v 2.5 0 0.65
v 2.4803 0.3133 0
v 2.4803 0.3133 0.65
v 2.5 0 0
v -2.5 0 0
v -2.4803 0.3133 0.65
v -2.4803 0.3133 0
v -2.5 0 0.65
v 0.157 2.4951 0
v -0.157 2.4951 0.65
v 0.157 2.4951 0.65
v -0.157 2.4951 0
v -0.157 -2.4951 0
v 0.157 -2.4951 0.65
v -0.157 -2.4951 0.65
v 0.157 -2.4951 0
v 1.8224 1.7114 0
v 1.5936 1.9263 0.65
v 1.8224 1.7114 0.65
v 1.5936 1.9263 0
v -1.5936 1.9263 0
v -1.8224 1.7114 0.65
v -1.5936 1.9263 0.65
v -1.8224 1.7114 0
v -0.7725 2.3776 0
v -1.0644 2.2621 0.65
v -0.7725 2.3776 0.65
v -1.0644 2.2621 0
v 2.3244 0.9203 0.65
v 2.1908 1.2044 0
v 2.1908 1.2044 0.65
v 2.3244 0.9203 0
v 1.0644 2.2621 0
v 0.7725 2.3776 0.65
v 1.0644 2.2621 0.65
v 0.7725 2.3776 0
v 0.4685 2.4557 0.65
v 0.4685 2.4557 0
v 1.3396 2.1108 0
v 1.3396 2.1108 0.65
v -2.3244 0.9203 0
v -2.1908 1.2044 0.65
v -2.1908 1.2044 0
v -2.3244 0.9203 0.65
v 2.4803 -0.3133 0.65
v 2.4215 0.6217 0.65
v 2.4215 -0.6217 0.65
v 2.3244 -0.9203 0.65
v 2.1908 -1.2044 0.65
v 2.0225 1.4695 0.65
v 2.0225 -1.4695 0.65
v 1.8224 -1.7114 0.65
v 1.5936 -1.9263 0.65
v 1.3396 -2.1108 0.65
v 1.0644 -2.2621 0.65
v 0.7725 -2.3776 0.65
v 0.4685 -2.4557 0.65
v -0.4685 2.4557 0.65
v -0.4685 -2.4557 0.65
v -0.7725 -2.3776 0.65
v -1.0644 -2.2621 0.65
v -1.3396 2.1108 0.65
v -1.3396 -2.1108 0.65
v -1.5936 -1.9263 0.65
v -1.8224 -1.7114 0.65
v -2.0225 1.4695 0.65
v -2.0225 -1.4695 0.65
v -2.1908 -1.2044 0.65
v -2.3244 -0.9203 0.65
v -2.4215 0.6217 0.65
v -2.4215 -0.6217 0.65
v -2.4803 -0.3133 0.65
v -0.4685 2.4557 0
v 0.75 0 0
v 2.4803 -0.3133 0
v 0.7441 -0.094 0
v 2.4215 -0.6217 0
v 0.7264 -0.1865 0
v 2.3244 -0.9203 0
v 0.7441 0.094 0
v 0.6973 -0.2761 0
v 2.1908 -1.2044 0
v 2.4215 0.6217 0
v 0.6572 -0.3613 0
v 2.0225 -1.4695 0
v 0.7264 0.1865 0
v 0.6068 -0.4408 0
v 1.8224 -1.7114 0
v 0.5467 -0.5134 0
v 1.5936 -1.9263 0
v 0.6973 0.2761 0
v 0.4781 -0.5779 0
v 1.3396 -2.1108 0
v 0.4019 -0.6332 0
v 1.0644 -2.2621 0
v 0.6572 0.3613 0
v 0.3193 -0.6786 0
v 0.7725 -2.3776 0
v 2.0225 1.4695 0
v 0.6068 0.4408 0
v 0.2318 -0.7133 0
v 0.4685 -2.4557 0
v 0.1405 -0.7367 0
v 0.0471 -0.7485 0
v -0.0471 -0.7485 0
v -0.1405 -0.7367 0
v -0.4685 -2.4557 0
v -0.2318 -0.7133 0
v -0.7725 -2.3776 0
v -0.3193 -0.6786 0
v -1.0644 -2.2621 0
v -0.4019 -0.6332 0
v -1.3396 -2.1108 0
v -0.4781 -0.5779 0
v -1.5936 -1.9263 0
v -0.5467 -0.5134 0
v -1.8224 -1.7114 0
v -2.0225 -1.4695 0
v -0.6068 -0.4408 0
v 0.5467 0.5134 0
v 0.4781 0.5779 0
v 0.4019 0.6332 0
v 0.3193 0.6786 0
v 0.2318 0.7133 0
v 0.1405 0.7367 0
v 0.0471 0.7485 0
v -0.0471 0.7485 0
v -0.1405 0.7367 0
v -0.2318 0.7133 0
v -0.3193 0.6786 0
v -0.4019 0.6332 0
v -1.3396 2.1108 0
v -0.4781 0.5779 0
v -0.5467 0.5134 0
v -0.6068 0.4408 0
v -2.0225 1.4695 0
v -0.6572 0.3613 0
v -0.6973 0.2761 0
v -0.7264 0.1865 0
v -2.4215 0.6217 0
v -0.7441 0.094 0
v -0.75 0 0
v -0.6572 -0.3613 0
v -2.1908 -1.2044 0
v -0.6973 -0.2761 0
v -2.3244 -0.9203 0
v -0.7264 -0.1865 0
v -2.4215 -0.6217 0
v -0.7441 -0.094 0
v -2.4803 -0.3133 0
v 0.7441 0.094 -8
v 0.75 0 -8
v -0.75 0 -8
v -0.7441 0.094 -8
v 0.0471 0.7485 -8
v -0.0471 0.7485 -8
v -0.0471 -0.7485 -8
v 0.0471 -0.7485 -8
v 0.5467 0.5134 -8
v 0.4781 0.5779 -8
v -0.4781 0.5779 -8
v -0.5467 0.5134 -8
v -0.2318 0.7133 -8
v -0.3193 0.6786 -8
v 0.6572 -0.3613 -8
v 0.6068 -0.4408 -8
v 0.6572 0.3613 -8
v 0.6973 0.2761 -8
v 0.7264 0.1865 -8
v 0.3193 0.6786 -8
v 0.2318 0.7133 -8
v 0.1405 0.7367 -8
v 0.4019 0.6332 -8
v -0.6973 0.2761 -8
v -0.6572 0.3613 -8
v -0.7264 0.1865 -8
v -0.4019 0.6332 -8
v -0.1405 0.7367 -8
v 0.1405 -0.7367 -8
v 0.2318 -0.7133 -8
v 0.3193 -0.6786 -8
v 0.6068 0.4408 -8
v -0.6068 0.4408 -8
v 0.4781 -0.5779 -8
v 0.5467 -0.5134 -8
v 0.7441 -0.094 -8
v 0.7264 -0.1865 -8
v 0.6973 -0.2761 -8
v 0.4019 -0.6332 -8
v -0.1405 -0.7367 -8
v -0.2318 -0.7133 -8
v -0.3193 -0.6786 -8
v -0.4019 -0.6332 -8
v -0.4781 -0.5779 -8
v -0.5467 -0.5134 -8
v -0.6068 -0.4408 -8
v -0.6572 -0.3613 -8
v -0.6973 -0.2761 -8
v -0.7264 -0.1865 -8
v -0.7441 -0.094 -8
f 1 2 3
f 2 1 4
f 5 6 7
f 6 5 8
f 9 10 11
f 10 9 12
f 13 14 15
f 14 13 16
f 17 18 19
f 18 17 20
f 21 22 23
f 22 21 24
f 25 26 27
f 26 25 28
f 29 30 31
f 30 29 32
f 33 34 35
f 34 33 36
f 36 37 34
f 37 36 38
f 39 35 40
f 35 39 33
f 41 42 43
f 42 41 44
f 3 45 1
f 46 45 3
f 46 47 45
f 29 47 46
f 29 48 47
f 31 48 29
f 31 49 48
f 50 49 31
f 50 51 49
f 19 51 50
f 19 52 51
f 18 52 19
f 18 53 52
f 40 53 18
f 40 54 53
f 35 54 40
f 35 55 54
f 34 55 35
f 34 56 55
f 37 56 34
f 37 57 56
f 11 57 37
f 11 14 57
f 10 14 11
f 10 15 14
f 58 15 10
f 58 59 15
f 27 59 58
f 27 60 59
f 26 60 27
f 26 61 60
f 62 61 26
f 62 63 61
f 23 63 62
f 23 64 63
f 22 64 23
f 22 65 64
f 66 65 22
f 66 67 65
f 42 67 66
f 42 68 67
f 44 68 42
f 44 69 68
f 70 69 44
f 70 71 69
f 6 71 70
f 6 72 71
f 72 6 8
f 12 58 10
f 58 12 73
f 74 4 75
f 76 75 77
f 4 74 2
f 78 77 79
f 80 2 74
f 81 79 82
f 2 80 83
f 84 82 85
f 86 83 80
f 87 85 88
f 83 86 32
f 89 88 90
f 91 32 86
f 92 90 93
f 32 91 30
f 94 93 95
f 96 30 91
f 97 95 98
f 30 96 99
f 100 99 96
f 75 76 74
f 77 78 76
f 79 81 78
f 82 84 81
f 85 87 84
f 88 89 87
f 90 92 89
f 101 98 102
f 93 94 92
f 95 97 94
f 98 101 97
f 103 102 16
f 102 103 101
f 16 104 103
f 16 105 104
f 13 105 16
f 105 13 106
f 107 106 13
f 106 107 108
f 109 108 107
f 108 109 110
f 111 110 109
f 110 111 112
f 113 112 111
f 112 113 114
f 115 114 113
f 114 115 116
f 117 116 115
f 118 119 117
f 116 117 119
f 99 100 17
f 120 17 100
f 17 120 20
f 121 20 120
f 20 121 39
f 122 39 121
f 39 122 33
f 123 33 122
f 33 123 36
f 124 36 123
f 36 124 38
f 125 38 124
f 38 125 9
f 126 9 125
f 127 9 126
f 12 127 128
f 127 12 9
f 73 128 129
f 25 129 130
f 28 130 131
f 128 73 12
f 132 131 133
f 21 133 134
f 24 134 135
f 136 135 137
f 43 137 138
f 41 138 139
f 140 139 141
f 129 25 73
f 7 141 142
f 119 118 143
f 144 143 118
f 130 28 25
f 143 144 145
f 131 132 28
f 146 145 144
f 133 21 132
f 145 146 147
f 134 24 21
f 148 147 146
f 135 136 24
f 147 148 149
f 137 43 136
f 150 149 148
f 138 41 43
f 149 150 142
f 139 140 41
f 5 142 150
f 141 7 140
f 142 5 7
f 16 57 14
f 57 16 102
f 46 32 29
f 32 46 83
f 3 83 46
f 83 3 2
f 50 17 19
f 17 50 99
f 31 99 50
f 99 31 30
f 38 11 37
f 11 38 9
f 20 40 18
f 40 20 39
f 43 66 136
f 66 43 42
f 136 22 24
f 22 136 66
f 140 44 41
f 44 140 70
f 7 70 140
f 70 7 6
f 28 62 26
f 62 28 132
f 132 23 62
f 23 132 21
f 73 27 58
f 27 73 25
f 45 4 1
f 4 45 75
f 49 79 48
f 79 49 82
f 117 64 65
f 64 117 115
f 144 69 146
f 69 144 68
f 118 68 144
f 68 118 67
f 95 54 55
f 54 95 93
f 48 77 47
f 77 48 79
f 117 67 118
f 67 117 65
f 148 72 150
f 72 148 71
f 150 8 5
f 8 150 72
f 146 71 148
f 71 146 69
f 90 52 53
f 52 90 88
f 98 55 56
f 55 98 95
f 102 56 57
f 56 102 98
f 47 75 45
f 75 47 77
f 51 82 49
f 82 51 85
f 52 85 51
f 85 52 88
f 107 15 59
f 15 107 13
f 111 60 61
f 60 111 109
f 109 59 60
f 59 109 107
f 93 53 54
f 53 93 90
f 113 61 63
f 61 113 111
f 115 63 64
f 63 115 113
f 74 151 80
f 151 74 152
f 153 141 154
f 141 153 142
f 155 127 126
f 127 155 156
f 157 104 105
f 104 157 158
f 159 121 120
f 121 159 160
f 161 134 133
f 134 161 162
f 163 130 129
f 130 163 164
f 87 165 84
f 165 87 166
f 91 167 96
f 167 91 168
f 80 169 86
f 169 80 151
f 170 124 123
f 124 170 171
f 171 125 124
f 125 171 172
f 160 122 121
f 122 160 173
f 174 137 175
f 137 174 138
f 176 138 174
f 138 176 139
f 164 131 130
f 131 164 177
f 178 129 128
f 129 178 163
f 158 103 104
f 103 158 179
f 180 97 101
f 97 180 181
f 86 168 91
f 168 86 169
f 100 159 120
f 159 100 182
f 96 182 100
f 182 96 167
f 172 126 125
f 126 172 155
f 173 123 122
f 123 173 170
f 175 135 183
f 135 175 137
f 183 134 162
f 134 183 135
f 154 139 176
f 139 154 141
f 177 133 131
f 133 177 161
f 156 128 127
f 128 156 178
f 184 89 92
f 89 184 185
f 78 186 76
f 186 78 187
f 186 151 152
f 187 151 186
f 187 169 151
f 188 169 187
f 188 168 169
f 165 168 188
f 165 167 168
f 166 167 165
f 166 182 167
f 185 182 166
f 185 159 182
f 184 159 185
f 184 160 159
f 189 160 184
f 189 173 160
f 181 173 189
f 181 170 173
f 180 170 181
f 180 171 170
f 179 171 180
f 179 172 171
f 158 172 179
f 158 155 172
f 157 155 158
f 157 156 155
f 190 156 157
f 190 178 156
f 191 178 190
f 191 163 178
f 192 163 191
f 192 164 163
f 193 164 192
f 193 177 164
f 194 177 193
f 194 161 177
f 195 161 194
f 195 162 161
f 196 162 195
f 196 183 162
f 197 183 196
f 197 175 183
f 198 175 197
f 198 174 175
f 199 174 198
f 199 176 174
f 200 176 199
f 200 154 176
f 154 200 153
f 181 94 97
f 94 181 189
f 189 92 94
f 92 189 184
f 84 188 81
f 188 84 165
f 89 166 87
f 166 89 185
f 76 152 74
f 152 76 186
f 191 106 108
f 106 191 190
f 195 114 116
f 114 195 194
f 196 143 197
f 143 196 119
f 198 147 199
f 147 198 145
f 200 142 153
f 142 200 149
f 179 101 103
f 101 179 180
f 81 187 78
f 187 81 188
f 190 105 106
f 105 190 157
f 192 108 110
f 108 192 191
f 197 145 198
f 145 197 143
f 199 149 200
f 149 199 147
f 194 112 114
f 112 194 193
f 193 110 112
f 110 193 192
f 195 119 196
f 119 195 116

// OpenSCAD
$fn = 50;


difference() {
	union() {
		translate(v = [0, 0, 0]) {
			rotate(a = [0, 0, 0]) {
				cylinder(h = 0.6500000000, r = 2.5000000000);
			}
		}
		translate(v = [0, 0, -8]) {
			rotate(a = [0, 0, 0]) {
				cylinder(h = 8, r = 0.7500000000);
			}
		}
	}
	union();
}
